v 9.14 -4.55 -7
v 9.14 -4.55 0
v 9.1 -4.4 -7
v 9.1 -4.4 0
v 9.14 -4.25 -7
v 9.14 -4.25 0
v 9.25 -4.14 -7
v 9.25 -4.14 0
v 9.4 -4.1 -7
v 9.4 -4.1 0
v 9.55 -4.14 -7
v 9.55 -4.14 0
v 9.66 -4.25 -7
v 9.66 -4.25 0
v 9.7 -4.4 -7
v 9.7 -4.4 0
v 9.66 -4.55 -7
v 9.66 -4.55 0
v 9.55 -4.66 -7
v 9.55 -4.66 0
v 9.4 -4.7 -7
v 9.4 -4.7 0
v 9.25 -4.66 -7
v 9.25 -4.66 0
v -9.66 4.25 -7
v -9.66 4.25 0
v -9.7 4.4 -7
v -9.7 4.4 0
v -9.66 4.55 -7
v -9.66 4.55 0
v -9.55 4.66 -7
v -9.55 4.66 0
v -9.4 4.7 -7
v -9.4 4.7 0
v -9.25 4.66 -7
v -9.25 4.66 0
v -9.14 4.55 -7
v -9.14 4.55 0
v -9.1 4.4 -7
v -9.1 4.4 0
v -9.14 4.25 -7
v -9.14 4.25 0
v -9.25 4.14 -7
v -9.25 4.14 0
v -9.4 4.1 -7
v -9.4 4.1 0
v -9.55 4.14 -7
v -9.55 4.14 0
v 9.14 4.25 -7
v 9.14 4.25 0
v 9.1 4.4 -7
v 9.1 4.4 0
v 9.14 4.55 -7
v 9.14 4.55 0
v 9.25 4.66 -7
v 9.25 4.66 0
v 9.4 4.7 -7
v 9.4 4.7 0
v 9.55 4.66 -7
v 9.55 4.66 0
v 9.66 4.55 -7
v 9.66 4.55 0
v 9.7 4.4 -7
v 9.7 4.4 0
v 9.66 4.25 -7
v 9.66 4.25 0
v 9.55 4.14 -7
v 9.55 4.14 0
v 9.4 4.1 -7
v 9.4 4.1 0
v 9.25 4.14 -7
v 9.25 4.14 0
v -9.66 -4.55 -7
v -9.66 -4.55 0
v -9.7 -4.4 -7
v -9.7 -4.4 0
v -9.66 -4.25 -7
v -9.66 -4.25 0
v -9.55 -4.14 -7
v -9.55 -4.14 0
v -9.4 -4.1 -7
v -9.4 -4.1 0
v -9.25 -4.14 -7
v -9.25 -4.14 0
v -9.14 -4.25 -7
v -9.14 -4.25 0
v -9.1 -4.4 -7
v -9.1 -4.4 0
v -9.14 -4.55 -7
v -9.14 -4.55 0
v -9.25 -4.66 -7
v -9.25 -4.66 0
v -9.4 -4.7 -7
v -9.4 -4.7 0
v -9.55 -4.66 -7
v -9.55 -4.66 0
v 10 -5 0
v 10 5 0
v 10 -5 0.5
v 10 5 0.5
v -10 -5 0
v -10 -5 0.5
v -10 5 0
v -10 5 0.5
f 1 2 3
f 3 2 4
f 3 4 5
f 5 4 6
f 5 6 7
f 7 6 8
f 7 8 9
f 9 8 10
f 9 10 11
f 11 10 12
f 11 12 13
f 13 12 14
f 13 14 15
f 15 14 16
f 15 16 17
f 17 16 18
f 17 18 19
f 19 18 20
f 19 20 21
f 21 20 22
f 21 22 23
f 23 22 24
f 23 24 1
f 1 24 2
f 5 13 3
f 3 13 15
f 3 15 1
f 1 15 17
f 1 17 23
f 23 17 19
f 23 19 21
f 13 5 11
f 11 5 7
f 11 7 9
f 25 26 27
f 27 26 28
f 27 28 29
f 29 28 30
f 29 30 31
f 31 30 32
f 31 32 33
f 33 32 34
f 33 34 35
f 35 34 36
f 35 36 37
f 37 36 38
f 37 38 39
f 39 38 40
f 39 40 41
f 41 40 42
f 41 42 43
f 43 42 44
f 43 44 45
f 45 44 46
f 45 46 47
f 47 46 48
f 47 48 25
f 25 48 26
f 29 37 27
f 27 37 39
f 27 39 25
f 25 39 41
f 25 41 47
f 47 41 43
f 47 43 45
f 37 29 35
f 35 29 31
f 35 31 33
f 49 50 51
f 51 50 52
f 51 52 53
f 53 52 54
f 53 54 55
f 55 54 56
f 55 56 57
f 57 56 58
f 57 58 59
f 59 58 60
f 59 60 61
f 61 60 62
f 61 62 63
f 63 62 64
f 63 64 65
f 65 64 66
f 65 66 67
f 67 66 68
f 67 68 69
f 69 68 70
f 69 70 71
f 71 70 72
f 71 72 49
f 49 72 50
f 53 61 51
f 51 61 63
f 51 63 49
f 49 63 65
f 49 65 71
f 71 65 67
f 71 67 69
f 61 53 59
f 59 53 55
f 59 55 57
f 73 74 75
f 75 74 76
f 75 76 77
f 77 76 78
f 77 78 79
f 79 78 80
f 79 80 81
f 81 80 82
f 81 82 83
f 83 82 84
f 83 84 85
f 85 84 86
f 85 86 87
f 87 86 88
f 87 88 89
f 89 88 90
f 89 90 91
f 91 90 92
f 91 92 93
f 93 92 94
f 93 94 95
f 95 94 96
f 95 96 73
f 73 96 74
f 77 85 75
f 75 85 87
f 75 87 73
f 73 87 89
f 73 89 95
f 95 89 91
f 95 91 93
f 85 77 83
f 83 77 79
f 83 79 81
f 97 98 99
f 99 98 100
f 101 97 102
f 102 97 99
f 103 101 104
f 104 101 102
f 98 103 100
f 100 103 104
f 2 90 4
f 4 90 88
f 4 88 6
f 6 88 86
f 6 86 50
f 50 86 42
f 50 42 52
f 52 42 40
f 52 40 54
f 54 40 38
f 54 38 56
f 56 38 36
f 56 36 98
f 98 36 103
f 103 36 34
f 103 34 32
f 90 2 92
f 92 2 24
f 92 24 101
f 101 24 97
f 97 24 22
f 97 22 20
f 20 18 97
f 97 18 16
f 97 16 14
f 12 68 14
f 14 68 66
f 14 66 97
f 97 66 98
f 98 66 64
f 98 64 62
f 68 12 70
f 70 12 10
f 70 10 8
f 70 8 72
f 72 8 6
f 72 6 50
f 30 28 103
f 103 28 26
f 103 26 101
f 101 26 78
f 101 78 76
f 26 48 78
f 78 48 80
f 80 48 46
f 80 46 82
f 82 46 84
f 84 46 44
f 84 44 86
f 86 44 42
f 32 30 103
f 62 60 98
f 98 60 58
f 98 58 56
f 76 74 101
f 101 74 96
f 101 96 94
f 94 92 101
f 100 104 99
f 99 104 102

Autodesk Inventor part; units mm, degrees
ref_plane "YZ Plane" through (0, 0, 0) normal (1, 0, 0) x (0, 1, 0)
ref_plane "XZ Plane" through (0, 0, 0) normal (0, 1, 0) x (-1, 0, 0)
ref_plane "XY Plane" through (0, 0, 0) normal (0, 0, 1) x (1, 0, 0)
sketch "Sketch1" plane through (0, 0, 0) normal (0, 0, 1) x (1, 0, 0)
  line L0 (-10, 5) -> (10, 5)
  line L1 (10, 5) -> (10, -5)
  line L2 (10, -5) -> (-10, -5)
  line L3 (-10, -5) -> (-10, 5)
  point P0 (0, 0)
  dimension "d0" = 20
  dimension "d1" = 10
  dimension "d2" = 5
  dimension "d3" = 10
extrude "Extrusion1" add sketch "Sketch1" along normal blind 0.5
sketch "Sketch2" plane through (0, 0, 0) normal (0, 0, -1) x (-1, 0, 0)
  circle A0 centre (9.4, 4.4) radius 0.3
  circle A1 centre (-9.4, 4.4) radius 0.3
  circle A2 centre (-9.4, -4.4) radius 0.3
  circle A3 centre (9.4, -4.4) radius 0.3
  line L0 (10, 5) -> (-10, 5) projected
  line L1 (-10, 5) -> (-10, -5) projected
  line L2 (10, -5) -> (10, 5) projected
  line L3 (-10, -5) -> (10, -5) projected
  point P0 (0, 0)
  dimension "d6" = 0.6
  dimension "d7" = 0.6
  dimension "d8" = 0.6
  dimension "d9" = 0.6
  dimension "d10" = 0.6
  dimension "d11" = 0.6
  dimension "d12" = 0.6
  dimension "d13" = 0.6
  dimension "d14" = 0.6
  dimension "d15" = 0.6
  dimension "d16" = 0.6
  dimension "d17" = 0.6
extrude "Extrusion2" add sketch "Sketch2" along normal blind 7 contours A0 | A1 | A2 | A3
equation "\"d1\" = 0.5 * d0"
equation "\"d2\" = 0.5 * d1"
equation "\"d3\" = 0.5 * d0"
equation "\"d7\" = d6"
equation "\"d8\" = d7"
equation "\"d9\" = d7"
equation "\"d10\" = d6"
equation "\"d11\" = d8"
equation "\"d12\" = d6"
equation "\"d13\" = d7"
equation "\"d14\" = d8"
equation "\"d15\" = d6"
equation "\"d16\" = d7"
equation "\"d17\" = d8"
properties part number "PythonKukaTable"
